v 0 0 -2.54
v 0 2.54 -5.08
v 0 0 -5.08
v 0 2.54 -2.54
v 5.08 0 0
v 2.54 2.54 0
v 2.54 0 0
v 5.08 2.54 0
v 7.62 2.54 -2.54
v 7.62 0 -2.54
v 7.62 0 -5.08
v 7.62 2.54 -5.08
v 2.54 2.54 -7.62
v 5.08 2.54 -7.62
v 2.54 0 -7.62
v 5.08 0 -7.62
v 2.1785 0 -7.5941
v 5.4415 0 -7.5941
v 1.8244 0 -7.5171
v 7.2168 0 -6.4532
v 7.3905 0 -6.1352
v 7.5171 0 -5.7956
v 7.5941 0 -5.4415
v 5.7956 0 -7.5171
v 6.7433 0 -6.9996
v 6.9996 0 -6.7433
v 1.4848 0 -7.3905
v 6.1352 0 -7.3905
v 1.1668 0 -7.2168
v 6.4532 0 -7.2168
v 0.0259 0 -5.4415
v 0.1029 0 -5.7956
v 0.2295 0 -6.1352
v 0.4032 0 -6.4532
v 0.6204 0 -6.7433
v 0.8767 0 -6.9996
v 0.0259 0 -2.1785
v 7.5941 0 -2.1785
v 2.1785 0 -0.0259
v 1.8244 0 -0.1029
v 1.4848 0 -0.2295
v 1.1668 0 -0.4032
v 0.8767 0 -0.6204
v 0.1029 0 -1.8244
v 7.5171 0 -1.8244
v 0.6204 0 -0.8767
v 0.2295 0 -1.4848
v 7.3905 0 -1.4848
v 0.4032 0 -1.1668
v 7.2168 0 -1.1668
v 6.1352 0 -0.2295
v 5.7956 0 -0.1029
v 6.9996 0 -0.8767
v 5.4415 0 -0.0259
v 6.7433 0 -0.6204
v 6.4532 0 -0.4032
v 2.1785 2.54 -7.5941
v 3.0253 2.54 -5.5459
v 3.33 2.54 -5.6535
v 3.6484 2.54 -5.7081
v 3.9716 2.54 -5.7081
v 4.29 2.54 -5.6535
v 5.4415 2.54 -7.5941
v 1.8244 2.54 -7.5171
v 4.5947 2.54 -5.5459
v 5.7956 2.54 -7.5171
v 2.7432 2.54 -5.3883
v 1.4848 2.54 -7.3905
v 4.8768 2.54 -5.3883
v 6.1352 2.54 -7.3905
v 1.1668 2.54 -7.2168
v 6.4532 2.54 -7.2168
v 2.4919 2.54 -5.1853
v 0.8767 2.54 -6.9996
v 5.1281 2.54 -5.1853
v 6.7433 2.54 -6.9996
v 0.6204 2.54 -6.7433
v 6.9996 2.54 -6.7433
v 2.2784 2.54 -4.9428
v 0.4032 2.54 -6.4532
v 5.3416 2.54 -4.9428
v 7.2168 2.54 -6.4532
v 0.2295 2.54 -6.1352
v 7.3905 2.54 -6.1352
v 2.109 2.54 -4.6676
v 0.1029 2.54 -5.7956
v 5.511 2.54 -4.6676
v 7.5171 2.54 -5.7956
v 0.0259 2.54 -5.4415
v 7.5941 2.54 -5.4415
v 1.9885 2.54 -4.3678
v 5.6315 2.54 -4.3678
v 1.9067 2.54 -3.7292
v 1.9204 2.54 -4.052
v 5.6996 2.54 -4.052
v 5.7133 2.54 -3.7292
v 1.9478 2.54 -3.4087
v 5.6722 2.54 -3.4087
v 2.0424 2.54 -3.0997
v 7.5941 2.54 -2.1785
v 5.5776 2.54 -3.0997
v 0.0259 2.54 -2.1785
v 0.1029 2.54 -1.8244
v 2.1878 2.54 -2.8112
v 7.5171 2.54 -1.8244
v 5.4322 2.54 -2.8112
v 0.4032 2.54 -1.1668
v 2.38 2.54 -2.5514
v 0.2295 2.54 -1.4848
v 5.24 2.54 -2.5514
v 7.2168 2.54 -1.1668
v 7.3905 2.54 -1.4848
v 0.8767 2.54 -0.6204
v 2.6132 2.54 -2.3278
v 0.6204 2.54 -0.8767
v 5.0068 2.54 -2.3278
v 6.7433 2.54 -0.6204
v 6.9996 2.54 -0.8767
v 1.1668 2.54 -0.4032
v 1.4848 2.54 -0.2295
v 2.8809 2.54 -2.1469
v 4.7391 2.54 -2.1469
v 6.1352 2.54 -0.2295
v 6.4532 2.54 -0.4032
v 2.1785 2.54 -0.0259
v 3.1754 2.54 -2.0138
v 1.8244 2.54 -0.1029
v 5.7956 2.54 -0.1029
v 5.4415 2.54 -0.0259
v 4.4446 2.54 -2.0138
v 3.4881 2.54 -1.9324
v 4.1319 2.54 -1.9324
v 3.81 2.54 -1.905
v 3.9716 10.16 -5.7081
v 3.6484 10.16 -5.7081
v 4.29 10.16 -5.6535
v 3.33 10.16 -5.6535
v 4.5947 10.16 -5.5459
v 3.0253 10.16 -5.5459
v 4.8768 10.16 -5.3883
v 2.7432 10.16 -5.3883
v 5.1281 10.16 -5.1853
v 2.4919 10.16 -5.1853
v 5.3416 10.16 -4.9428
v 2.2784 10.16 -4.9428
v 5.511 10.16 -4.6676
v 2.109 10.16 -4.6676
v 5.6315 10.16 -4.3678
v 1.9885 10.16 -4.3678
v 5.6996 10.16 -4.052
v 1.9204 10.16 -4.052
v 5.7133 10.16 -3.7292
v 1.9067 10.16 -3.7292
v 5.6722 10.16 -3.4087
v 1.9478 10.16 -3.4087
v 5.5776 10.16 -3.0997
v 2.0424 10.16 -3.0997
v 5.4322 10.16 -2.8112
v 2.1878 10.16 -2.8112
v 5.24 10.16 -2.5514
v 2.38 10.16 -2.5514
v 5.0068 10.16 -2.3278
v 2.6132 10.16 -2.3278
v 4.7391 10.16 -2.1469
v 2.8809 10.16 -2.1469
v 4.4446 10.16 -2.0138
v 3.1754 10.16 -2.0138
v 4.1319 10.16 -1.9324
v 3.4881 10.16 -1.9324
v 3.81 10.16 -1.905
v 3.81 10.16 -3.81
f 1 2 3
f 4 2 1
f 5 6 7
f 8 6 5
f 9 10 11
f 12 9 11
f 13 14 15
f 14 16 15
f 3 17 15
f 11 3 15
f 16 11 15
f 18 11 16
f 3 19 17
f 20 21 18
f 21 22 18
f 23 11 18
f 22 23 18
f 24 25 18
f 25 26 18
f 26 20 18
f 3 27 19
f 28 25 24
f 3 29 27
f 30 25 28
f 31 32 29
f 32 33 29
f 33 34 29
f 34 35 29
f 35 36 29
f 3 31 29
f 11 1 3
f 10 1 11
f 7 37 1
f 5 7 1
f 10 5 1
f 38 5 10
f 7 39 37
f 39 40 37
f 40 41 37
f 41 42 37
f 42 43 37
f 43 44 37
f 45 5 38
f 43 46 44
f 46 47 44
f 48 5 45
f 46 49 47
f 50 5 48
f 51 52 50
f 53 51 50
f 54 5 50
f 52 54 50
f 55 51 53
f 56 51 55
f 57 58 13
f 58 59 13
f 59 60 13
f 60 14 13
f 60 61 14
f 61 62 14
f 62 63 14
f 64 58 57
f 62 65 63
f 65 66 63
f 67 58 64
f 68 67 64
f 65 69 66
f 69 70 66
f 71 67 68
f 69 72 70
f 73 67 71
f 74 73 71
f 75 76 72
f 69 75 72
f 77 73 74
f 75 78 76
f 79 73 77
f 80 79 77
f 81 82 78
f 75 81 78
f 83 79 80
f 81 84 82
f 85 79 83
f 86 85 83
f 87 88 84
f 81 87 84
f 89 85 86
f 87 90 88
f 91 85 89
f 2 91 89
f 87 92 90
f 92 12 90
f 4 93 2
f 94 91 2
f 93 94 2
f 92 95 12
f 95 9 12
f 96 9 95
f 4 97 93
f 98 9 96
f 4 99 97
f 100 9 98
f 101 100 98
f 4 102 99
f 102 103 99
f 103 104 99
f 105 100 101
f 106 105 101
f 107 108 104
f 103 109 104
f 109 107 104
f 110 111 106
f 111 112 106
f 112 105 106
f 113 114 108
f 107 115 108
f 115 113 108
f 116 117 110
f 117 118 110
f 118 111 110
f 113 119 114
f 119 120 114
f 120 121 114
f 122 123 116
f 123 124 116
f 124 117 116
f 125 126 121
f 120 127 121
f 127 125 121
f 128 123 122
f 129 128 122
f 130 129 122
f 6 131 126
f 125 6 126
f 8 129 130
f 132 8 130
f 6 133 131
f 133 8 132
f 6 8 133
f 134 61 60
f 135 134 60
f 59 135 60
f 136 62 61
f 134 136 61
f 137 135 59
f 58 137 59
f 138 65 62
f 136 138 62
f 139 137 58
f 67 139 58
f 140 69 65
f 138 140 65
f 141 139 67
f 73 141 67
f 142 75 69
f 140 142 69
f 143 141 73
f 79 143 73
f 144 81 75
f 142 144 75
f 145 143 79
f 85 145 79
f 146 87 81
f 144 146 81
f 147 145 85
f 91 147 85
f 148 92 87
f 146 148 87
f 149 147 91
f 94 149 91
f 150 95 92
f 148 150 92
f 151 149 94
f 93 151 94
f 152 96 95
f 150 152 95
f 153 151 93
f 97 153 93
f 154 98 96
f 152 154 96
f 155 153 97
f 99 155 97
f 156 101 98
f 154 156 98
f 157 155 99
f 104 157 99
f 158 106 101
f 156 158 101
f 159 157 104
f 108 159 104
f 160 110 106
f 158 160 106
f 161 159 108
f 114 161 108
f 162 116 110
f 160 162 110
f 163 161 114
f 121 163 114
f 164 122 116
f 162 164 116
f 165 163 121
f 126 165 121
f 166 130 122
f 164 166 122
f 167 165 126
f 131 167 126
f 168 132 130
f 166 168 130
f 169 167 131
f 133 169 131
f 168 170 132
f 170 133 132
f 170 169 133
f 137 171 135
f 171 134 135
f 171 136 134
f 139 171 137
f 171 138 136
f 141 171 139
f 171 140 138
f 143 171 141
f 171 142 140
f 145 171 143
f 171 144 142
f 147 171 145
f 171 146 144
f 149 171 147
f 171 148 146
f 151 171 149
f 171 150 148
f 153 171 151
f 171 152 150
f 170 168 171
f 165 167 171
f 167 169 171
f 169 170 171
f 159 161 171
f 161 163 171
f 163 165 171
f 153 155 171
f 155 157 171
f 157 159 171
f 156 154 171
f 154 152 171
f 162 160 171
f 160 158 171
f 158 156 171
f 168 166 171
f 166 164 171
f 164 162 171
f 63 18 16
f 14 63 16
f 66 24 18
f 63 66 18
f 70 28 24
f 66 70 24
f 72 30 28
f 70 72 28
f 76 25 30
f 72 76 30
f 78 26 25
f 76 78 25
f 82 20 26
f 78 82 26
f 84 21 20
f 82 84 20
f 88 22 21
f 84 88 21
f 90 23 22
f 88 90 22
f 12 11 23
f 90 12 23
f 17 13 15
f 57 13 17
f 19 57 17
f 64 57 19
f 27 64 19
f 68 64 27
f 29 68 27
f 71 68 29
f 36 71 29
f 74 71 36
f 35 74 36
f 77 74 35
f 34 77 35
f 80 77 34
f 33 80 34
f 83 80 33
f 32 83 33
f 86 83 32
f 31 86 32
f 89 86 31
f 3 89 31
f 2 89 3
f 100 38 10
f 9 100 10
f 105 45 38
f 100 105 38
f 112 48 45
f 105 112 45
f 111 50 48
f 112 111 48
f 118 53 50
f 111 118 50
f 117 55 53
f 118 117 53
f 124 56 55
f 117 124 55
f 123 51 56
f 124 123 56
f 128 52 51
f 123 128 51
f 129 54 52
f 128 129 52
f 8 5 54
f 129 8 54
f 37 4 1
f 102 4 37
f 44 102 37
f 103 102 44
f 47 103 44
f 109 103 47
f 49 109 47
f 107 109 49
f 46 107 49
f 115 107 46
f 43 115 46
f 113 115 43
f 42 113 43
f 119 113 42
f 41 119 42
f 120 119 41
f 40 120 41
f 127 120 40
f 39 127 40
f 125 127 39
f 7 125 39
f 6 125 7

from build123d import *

# Parameters (mm, degrees)
SKETCH1_W           = 7.62
SKETCH1_H           = 7.62
BOSS_EXTRUDE1_DEPTH = 10.16
SKETCH2_W           = 7.62
SKETCH2_H           = 7.62
SKETCH2_R           = 1.905
CUT_EXTRUDE1_DEPTH  = 7.62
FILLET1_R           = 2.54
FILLET2_R           = 2.54
FILLET3_R           = 2.54
FILLET4_R           = 2.54


with BuildPart() as part:
    # Sketch1 → Boss-Extrude1 (new body)
    with BuildSketch(Plane(origin=(0, 0, 0), x_dir=(1, 0, 0), z_dir=(0, 1, 0))):
        with Locations((3.81, 3.81)):
            Rectangle(SKETCH1_W, SKETCH1_H)
    extrude(amount=BOSS_EXTRUDE1_DEPTH)

    # Sketch2 → Cut-Extrude1 (cut)
    with BuildSketch(Plane(origin=(0, 10.16, 0), x_dir=(1, 0, 0), z_dir=(0, 1, 0))):
        with Locations((3.81, 3.81)):
            Rectangle(SKETCH2_W, SKETCH2_H)
        with Locations(Location((3.81, 3.81, 0), (0, 0, 270))):
            Circle(SKETCH2_R, mode=Mode.SUBTRACT)
    extrude(amount=-CUT_EXTRUDE1_DEPTH, mode=Mode.SUBTRACT)

    # Fillet1
    fillet1_edges = [part.edges().sort_by_distance(p)[0] for p in [
        (7.62, 1.27, -7.62),
    ]]
    fillet(fillet1_edges, radius=FILLET1_R)

    # Fillet2
    fillet2_edges = [part.edges().sort_by_distance(p)[0] for p in [
        (0, 1.27, -7.62),
    ]]
    fillet(fillet2_edges, radius=FILLET2_R)

    # Fillet3
    fillet3_edges = [part.edges().sort_by_distance(p)[0] for p in [
        (7.62, 1.27, 0),
    ]]
    fillet(fillet3_edges, radius=FILLET3_R)

    # Fillet4
    fillet4_edges = [part.edges().sort_by_distance(p)[0] for p in [
        (0, 1.27, 0),
    ]]
    fillet(fillet4_edges, radius=FILLET4_R)


solid = part.part
